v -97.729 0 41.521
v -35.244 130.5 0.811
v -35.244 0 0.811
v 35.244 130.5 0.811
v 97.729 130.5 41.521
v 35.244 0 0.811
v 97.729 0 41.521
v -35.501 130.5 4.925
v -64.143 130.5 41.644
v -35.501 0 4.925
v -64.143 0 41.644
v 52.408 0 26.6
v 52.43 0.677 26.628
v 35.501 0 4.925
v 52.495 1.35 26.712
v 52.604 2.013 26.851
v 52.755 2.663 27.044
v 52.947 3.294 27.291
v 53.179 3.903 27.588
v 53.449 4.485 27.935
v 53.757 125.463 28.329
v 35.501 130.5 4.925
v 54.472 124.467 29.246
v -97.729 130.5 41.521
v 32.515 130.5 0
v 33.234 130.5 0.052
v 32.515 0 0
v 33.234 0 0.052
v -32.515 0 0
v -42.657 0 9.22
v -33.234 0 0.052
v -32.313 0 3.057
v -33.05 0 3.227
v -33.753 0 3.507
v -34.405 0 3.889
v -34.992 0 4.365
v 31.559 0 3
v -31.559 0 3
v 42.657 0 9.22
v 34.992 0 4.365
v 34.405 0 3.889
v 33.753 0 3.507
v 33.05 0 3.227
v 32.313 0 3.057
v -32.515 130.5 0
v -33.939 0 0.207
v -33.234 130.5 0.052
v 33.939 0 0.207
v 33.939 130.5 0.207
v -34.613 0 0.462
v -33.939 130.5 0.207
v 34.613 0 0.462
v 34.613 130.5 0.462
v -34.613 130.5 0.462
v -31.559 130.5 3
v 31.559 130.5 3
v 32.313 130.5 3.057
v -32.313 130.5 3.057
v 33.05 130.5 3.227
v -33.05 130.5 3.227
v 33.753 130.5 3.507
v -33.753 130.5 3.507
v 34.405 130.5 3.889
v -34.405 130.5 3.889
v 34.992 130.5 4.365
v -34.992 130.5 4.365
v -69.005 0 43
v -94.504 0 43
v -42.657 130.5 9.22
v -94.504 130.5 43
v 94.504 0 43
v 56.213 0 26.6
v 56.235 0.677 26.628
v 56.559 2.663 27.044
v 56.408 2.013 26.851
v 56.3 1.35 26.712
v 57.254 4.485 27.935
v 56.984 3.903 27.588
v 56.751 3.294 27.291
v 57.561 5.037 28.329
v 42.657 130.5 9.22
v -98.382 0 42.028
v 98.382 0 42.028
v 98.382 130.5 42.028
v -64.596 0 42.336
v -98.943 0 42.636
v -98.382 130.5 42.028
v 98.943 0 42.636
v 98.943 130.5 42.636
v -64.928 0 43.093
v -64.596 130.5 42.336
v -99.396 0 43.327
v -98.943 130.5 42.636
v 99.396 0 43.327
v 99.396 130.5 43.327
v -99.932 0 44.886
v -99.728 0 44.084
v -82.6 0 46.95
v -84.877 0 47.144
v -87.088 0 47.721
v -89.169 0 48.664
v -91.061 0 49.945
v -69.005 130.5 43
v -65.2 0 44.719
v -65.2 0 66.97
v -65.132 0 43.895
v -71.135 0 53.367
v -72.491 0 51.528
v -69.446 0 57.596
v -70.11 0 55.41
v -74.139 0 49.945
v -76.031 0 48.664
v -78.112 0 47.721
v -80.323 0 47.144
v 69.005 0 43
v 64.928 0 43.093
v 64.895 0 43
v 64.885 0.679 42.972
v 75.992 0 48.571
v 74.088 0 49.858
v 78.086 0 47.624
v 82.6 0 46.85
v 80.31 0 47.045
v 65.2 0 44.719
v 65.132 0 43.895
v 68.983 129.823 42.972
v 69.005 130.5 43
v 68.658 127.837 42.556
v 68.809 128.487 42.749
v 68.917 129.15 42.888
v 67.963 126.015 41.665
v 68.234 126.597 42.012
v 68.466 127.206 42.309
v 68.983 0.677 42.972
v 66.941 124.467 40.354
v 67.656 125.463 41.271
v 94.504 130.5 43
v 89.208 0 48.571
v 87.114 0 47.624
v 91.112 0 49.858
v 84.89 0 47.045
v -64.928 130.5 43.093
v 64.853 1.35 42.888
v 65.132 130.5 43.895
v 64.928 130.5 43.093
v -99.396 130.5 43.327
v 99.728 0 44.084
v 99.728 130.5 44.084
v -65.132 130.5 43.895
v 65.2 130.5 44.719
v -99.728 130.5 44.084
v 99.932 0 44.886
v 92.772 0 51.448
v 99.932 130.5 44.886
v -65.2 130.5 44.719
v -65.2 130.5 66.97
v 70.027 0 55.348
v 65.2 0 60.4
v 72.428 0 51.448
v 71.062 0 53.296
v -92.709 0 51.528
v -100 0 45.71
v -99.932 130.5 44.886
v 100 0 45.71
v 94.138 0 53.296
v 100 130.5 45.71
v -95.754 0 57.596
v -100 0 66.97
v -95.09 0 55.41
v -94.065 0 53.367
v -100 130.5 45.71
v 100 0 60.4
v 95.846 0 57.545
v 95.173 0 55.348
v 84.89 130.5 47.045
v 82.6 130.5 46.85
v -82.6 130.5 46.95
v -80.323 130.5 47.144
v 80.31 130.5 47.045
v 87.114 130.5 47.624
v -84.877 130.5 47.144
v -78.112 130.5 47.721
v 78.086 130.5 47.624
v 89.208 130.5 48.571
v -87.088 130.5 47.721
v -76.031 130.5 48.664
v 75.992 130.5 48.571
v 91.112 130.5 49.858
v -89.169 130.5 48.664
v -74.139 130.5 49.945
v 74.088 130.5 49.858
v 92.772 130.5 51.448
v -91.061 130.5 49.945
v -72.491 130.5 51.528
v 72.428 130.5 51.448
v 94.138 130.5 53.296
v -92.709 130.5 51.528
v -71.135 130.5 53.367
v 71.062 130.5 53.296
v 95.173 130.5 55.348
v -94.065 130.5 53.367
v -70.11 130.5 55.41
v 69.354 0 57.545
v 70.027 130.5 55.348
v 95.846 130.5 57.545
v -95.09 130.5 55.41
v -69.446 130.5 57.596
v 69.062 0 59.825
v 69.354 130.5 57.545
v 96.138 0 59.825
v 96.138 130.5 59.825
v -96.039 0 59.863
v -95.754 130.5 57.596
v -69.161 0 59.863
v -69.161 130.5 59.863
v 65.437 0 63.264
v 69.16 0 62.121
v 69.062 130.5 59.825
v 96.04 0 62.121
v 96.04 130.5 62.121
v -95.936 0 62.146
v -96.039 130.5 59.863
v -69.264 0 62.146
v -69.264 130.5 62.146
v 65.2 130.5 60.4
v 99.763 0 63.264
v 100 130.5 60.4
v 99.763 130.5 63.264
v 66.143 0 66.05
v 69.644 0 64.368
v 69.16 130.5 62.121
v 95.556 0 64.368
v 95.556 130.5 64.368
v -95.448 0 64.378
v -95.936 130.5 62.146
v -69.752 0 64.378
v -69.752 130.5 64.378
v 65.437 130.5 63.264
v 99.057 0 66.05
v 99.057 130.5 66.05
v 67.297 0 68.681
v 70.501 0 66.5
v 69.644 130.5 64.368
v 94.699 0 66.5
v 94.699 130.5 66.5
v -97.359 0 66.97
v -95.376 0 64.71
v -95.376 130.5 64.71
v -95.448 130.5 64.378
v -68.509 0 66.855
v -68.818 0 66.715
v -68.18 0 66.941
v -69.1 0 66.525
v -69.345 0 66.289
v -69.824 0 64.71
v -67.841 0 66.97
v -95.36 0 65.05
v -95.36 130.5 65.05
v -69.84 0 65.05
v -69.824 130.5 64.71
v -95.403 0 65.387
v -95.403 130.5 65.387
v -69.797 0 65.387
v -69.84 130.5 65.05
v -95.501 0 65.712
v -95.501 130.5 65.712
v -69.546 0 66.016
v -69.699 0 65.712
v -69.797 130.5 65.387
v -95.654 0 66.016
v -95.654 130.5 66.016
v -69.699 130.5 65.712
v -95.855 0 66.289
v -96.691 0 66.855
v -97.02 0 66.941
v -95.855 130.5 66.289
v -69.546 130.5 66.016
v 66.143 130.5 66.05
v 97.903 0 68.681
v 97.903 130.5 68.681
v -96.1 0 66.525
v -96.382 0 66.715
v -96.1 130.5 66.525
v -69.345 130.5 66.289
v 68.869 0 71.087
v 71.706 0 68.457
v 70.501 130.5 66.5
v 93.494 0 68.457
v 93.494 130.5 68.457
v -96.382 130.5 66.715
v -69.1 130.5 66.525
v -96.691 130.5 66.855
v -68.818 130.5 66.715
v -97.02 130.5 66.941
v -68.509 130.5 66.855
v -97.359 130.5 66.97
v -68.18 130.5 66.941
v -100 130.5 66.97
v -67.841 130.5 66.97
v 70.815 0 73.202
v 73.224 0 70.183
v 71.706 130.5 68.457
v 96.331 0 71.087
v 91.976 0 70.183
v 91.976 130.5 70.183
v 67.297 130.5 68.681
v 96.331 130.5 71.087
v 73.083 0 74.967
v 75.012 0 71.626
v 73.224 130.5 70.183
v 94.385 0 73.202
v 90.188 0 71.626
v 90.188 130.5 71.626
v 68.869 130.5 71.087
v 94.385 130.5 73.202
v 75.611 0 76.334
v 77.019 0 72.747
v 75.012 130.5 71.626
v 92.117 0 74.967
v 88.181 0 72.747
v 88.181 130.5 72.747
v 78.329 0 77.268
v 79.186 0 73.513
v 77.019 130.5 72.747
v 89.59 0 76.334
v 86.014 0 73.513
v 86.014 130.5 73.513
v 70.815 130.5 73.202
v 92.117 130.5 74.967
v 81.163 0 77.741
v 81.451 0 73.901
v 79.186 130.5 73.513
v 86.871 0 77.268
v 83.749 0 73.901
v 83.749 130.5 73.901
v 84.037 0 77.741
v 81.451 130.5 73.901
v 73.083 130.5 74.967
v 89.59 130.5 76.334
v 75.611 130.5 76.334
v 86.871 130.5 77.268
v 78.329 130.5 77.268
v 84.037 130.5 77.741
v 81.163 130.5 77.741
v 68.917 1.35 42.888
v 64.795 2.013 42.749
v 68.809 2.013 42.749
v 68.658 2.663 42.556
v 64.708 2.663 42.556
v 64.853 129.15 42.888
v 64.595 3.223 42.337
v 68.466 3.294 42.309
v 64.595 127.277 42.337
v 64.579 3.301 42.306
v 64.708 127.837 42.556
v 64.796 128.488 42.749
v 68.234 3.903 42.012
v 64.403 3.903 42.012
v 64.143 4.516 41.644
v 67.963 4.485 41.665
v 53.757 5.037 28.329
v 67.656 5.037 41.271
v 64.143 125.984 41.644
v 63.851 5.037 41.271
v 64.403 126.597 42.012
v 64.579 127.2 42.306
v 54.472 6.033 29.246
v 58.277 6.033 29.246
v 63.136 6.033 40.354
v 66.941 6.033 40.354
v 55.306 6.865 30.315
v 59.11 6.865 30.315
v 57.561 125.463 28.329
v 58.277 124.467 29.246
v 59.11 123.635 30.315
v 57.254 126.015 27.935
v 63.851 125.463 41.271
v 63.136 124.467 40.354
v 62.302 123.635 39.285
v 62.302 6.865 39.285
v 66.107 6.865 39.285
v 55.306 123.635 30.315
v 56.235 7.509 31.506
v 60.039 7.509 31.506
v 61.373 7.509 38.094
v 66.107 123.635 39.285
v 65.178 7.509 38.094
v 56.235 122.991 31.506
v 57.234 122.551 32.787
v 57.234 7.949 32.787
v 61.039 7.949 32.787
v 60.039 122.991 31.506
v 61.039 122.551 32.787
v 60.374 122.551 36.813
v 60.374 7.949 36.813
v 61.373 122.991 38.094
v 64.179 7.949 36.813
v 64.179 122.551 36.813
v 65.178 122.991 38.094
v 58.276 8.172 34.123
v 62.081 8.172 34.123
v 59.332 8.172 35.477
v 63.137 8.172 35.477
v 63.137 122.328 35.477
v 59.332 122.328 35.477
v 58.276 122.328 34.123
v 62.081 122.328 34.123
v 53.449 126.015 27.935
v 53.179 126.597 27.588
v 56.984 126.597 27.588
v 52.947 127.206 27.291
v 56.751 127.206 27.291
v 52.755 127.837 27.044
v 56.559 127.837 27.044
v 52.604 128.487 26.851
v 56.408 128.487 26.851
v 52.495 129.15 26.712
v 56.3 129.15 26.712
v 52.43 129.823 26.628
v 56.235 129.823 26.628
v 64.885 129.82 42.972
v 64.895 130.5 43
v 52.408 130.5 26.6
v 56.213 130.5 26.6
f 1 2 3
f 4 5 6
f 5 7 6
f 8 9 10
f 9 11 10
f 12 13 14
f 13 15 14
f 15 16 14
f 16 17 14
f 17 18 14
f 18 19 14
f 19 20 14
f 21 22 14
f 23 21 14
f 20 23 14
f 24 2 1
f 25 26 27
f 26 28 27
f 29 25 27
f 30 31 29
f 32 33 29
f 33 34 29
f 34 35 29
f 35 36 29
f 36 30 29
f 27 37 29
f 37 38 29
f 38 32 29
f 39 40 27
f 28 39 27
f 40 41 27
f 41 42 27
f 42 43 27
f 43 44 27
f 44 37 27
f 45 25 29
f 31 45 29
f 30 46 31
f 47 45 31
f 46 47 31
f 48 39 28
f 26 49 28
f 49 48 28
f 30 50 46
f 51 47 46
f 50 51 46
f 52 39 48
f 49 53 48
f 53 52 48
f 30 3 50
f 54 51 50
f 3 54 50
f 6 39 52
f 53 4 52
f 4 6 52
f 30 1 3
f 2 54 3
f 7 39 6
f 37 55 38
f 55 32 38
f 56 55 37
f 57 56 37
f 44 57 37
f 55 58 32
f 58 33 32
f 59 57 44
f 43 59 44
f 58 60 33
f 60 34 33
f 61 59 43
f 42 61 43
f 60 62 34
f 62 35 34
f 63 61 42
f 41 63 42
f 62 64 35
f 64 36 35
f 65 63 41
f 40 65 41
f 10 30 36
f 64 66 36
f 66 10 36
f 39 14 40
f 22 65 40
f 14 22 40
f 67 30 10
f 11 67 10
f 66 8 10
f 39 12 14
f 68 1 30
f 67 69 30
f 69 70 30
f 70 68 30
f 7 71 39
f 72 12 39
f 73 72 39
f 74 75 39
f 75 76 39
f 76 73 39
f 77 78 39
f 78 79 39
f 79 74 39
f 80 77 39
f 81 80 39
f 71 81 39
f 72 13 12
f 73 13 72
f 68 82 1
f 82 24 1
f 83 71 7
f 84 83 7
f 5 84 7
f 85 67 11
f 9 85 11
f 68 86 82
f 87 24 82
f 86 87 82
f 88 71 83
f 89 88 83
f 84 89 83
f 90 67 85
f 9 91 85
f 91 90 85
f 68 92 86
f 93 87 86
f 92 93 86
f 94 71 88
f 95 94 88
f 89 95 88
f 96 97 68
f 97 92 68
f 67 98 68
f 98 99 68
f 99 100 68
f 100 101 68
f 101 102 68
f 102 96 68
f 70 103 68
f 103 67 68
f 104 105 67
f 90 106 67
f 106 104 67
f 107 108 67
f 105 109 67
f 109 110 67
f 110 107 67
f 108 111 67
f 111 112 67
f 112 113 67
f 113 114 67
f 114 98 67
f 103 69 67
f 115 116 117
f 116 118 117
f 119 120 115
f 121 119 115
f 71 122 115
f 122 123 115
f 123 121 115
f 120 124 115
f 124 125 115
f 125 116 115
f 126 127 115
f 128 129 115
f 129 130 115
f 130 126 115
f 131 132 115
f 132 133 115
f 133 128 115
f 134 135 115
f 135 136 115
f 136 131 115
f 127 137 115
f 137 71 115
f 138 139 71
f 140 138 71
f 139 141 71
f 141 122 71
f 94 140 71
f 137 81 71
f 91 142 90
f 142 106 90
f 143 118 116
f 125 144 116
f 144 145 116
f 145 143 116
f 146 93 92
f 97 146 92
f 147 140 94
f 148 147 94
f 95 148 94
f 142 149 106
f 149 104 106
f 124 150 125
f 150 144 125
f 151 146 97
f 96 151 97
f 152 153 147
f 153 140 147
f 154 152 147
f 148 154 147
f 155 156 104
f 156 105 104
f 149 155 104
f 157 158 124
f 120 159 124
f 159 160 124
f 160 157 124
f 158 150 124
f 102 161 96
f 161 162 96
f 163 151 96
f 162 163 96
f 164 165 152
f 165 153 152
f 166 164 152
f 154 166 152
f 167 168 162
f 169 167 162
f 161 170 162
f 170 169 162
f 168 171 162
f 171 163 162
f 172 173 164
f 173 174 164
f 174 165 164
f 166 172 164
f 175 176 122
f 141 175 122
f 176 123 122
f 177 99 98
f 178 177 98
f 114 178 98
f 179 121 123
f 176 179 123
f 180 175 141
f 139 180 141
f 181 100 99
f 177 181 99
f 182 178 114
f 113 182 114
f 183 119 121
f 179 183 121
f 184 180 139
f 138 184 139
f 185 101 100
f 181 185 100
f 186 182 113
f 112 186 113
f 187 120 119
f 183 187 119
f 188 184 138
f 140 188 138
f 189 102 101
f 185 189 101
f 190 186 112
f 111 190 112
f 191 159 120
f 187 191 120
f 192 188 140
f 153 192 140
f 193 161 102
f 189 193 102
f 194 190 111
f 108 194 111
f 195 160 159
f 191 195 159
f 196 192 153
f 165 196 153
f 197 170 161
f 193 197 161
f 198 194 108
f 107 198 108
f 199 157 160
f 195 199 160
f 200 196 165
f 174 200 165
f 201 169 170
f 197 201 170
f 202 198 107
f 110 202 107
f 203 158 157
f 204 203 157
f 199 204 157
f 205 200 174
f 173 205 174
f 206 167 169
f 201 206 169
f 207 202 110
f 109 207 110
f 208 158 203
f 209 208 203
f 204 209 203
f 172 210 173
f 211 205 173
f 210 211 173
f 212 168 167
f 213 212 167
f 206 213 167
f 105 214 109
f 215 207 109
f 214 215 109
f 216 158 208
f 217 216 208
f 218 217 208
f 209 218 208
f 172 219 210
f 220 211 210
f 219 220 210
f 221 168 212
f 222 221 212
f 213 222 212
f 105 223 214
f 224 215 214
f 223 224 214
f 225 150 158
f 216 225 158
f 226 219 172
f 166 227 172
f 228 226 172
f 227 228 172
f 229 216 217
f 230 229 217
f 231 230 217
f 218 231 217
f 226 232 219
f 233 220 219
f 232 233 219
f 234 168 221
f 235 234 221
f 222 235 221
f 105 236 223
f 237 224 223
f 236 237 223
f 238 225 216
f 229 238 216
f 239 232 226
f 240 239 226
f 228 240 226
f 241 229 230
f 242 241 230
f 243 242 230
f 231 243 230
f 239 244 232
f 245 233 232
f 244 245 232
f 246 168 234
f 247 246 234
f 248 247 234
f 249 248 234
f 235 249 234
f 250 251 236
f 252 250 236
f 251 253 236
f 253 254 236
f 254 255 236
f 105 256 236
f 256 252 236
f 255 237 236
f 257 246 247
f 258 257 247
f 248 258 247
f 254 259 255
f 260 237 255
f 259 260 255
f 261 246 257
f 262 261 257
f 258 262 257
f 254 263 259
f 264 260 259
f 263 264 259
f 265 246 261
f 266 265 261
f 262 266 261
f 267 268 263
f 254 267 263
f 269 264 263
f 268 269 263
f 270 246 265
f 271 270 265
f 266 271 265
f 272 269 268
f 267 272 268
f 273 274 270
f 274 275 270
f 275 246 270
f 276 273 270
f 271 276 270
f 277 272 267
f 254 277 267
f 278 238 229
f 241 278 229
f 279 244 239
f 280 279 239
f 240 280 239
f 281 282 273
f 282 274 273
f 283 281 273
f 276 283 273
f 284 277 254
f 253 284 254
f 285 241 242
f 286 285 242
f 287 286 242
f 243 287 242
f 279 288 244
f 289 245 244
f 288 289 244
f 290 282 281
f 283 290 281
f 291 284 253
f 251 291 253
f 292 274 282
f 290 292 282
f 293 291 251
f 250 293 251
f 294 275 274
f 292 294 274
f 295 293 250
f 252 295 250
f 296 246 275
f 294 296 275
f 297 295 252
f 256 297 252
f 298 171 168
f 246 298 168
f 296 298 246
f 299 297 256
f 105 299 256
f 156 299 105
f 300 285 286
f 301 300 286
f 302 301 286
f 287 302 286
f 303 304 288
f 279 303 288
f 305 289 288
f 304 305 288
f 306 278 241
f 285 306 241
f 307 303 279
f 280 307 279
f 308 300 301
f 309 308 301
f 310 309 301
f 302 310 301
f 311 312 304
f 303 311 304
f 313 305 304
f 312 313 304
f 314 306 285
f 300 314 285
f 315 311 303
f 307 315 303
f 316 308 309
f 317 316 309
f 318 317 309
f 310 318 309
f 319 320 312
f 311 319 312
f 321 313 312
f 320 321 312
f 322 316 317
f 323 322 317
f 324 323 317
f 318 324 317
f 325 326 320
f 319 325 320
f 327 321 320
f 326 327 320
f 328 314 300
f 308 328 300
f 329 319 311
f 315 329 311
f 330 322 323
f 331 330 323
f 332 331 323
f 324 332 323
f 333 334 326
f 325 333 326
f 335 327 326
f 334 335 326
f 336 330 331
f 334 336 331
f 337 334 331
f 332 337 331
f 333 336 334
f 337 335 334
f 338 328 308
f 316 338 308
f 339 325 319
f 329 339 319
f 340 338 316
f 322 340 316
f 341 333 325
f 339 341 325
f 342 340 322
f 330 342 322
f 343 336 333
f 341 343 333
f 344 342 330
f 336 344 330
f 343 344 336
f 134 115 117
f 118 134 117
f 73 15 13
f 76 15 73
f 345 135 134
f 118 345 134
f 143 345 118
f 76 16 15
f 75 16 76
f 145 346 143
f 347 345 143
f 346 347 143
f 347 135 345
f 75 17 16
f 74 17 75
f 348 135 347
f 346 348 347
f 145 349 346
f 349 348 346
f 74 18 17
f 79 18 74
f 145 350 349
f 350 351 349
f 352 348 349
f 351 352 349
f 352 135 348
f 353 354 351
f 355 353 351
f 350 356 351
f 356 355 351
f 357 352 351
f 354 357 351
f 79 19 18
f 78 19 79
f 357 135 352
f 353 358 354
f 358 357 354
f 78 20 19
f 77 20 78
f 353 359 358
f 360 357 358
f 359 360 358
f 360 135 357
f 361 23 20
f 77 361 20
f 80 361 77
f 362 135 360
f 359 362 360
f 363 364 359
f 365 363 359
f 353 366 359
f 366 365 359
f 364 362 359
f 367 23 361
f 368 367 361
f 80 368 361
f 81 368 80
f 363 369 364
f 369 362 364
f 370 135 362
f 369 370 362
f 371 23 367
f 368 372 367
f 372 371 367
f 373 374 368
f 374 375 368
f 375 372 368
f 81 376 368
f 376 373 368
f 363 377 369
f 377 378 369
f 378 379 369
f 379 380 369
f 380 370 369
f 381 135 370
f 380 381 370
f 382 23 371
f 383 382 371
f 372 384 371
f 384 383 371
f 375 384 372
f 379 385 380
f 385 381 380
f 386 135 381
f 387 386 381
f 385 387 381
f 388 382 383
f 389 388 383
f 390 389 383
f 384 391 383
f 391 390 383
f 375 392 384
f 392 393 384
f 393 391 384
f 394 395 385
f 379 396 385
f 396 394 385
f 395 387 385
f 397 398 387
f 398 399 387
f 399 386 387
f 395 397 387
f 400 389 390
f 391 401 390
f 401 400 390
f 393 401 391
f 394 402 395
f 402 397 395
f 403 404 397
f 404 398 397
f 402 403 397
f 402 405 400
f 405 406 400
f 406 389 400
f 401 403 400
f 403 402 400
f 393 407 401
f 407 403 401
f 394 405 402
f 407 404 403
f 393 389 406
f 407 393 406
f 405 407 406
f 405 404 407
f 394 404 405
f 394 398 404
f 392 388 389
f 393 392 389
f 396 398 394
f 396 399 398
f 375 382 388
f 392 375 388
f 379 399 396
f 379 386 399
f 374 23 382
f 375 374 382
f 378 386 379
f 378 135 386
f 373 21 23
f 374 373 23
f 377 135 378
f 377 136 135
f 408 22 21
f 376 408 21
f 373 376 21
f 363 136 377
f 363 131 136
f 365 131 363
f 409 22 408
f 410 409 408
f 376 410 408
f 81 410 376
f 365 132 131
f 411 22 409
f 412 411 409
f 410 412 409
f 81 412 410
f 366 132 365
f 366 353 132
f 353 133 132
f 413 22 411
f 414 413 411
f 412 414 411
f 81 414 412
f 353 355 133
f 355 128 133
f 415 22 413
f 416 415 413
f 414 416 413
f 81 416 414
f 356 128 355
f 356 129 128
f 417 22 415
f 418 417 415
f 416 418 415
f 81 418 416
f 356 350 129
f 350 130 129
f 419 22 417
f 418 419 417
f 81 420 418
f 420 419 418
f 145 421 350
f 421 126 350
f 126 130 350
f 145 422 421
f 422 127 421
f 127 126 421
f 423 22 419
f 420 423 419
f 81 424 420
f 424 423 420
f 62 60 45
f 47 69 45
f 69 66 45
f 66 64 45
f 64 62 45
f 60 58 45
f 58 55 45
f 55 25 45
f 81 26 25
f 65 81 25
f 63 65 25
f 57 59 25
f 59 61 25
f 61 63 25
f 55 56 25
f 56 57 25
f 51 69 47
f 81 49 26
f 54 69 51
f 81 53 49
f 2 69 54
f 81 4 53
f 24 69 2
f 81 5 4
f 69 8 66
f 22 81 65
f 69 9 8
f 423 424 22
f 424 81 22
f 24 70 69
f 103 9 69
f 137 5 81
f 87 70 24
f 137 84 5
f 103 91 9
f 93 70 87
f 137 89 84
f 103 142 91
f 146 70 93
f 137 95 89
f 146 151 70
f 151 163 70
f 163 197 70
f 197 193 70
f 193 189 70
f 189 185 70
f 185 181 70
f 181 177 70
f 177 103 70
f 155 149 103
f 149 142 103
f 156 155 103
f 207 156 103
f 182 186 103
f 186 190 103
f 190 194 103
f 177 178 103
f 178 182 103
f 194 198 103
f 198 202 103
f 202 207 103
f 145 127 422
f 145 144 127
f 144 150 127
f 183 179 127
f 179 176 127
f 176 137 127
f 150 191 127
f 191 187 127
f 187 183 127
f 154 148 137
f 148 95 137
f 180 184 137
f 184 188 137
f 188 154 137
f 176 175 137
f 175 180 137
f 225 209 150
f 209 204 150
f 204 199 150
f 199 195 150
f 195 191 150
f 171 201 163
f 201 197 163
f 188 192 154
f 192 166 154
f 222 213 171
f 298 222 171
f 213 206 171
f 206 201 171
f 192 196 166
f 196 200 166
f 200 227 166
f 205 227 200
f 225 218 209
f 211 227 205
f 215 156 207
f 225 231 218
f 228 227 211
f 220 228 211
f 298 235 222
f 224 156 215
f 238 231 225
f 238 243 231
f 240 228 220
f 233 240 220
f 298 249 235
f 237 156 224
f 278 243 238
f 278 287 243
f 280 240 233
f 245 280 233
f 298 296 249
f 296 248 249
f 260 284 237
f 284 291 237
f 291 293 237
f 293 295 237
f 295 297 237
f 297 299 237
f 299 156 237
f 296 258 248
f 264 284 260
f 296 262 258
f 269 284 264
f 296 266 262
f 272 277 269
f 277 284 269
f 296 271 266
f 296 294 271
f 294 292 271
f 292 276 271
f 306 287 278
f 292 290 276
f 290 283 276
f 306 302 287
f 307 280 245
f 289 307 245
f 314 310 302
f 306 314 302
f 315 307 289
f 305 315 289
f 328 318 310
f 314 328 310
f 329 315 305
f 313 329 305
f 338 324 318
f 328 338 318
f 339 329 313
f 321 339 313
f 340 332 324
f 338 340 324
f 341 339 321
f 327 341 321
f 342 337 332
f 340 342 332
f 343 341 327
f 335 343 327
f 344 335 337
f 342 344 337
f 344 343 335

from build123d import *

# Parameters (mm, degrees)
BOSS_EXTRUDE1_DEPTH            = 130.5
SKETCH4_W                      = 34.8
SKETCH4_H                      = 34.8
SKETCH4_R                      = 13.45
BOSS_EXTRUDE2_DEPTH            = 130.5
FILLET1_R                      = 5
CUT_EXTRUDE4_DEPTH             = 182.887575167
CUT_EXTRUDE5_REACH             = 226.442
SKETCH7_R                      = 8.2
CUT_EXTRUDE5_DIRECTION_2_REACH = 226.442
SKETCH8_R                      = 13.55
CUT_EXTRUDE6_DEPTH             = 182.887575238


with BuildPart() as part:
    # Sketch1 → Boss-Extrude1 (new body)
    with BuildSketch(Plane(origin=(0, 0, 0), x_dir=(1, 0, 0), z_dir=(0, 1, 0))):
        with BuildLine():
            Line((0, 0), (-34, 0))
            Line((-34, 0), (-100, -43))
            Line((-100, -43), (-100, -66.97))
            Line((-100, -66.97), (-97.358644924, -66.97))
            ThreePointArc((-97.358644924, -66.97), (-95.748804634, -66.156766295), (-95.448140727, -64.378414239))
            ThreePointArc((-95.448140727, -64.378414239), (-82.6, -46.95), (-69.751859273, -64.378414239))
            ThreePointArc((-69.751859273, -64.378414239), (-69.451195366, -66.156766295), (-67.841355076, -66.97))
            Line((-67.841355076, -66.97), (-65.2, -66.97))
            Line((-65.2, -66.97), (-65.2, -43))
            Line((-65.2, -43), (-34, -3))
            Line((-34, -3), (0, -3))
            Line((0, -3), (0, 0))
        make_face()
        Polygon((-69.004681327, -43), (-94.504291462, -43), (-42.656655328, -9.220479488), align=None, mode=Mode.SUBTRACT)
    boss_extrude1 = extrude(amount=BOSS_EXTRUDE1_DEPTH)

    # Mirror1: Boss-Extrude1 across plane
    add(boss_extrude1.mirror(Plane(origin=(0, 130.5, 3), x_dir=(0, 0, 1), z_dir=(-1, 0, 0))))

    # Sketch4 → Boss-Extrude2 (add)
    with BuildSketch(Plane.XZ):
        with Locations((82.6, 60.4)):
            Rectangle(SKETCH4_W, SKETCH4_H)
        with Locations(Location((82.6, 60.4, 0), (0, 0, 270))):
            Circle(SKETCH4_R, mode=Mode.SUBTRACT)
    extrude(amount=-BOSS_EXTRUDE2_DEPTH)

    # Fillet1
    fillet1_edges = [part.edges().sort_by_distance(p)[0] for p in [
        (-34, 65.25, 3),
        (-65.2, 65.25, 43),
        (-100, 65.25, 43),
        (-34, 65.25, 0),
        (34, 65.25, 3),
        (65.2, 65.25, 43),
        (100, 65.25, 43),
        (34, 65.25, 0),
    ]]
    fillet(fillet1_edges, radius=FILLET1_R)

    # Sketch5 → Cut-Extrude4 (cut, through all)
    with BuildSketch(Plane.XZ):
        with BuildLine():
            Line((65.2, 60.4), (65.2, 77.8))
            Line((65.2, 77.8), (83.070170915, 82.404410021))
            Line((83.070170915, 82.404410021), (100, 77.8))
            Line((100, 77.8), (100, 60.4))
            ThreePointArc((100, 60.4), (82.6, 77.8), (65.2, 60.4))
        make_face()
    extrude(amount=-CUT_EXTRUDE4_DEPTH, mode=Mode.SUBTRACT)

    # Sketch7 → Cut-Extrude5 (cut, up to next)
    with BuildSketch(Plane.ZY.offset(-65.2), mode=Mode.PRIVATE) as cut_extrude5_sk1:
        with Locations((34.8, 0)):
            Circle(SKETCH7_R)
    cut_extrude5_tool1 = extrude(cut_extrude5_sk1.sketch, amount=-CUT_EXTRUDE5_REACH, mode=Mode.PRIVATE) & part.part
    # Sketch7 → Cut-Extrude5 (cut, up to next)
    with BuildSketch(Plane.ZY.offset(-65.2), mode=Mode.PRIVATE) as cut_extrude5_sk2:
        with Locations((34.8, 130.5)):
            Circle(SKETCH7_R)
    cut_extrude5_tool2 = extrude(cut_extrude5_sk2.sketch, amount=-CUT_EXTRUDE5_REACH, mode=Mode.PRIVATE) & part.part
    add(cut_extrude5_tool1.solids().sort_by_distance((65.2, 0, 34.8))[0], mode=Mode.SUBTRACT)
    add(cut_extrude5_tool2.solids().sort_by_distance((65.2, 130.5, 34.8))[0], mode=Mode.SUBTRACT)

    # Sketch7 → Cut-Extrude5 direction 2 (cut, up to next)
    with BuildSketch(Plane.ZY.offset(-65.2), mode=Mode.PRIVATE) as cut_extrude5_direction_2_sk1:
        with Locations((34.8, 0)):
            Circle(SKETCH7_R)
    cut_extrude5_direction_2_tool1 = extrude(cut_extrude5_direction_2_sk1.sketch, amount=CUT_EXTRUDE5_DIRECTION_2_REACH, mode=Mode.PRIVATE) & part.part
    # Sketch7 → Cut-Extrude5 direction 2 (cut, up to next)
    with BuildSketch(Plane.ZY.offset(-65.2), mode=Mode.PRIVATE) as cut_extrude5_direction_2_sk2:
        with Locations((34.8, 130.5)):
            Circle(SKETCH7_R)
    cut_extrude5_direction_2_tool2 = extrude(cut_extrude5_direction_2_sk2.sketch, amount=CUT_EXTRUDE5_DIRECTION_2_REACH, mode=Mode.PRIVATE) & part.part
    add(cut_extrude5_direction_2_tool1.solids().sort_by_distance((65.2, 0, 34.8))[0], mode=Mode.SUBTRACT)
    add(cut_extrude5_direction_2_tool2.solids().sort_by_distance((65.2, 130.5, 34.8))[0], mode=Mode.SUBTRACT)

    # Sketch8 → Cut-Extrude6 (cut, through all)
    with BuildSketch(Plane.XZ):
        with Locations(Location((82.6, 60.4, 0), (0, 0, 270))):
            Circle(SKETCH8_R)
    extrude(amount=-CUT_EXTRUDE6_DEPTH, mode=Mode.SUBTRACT)


solid = part.part
